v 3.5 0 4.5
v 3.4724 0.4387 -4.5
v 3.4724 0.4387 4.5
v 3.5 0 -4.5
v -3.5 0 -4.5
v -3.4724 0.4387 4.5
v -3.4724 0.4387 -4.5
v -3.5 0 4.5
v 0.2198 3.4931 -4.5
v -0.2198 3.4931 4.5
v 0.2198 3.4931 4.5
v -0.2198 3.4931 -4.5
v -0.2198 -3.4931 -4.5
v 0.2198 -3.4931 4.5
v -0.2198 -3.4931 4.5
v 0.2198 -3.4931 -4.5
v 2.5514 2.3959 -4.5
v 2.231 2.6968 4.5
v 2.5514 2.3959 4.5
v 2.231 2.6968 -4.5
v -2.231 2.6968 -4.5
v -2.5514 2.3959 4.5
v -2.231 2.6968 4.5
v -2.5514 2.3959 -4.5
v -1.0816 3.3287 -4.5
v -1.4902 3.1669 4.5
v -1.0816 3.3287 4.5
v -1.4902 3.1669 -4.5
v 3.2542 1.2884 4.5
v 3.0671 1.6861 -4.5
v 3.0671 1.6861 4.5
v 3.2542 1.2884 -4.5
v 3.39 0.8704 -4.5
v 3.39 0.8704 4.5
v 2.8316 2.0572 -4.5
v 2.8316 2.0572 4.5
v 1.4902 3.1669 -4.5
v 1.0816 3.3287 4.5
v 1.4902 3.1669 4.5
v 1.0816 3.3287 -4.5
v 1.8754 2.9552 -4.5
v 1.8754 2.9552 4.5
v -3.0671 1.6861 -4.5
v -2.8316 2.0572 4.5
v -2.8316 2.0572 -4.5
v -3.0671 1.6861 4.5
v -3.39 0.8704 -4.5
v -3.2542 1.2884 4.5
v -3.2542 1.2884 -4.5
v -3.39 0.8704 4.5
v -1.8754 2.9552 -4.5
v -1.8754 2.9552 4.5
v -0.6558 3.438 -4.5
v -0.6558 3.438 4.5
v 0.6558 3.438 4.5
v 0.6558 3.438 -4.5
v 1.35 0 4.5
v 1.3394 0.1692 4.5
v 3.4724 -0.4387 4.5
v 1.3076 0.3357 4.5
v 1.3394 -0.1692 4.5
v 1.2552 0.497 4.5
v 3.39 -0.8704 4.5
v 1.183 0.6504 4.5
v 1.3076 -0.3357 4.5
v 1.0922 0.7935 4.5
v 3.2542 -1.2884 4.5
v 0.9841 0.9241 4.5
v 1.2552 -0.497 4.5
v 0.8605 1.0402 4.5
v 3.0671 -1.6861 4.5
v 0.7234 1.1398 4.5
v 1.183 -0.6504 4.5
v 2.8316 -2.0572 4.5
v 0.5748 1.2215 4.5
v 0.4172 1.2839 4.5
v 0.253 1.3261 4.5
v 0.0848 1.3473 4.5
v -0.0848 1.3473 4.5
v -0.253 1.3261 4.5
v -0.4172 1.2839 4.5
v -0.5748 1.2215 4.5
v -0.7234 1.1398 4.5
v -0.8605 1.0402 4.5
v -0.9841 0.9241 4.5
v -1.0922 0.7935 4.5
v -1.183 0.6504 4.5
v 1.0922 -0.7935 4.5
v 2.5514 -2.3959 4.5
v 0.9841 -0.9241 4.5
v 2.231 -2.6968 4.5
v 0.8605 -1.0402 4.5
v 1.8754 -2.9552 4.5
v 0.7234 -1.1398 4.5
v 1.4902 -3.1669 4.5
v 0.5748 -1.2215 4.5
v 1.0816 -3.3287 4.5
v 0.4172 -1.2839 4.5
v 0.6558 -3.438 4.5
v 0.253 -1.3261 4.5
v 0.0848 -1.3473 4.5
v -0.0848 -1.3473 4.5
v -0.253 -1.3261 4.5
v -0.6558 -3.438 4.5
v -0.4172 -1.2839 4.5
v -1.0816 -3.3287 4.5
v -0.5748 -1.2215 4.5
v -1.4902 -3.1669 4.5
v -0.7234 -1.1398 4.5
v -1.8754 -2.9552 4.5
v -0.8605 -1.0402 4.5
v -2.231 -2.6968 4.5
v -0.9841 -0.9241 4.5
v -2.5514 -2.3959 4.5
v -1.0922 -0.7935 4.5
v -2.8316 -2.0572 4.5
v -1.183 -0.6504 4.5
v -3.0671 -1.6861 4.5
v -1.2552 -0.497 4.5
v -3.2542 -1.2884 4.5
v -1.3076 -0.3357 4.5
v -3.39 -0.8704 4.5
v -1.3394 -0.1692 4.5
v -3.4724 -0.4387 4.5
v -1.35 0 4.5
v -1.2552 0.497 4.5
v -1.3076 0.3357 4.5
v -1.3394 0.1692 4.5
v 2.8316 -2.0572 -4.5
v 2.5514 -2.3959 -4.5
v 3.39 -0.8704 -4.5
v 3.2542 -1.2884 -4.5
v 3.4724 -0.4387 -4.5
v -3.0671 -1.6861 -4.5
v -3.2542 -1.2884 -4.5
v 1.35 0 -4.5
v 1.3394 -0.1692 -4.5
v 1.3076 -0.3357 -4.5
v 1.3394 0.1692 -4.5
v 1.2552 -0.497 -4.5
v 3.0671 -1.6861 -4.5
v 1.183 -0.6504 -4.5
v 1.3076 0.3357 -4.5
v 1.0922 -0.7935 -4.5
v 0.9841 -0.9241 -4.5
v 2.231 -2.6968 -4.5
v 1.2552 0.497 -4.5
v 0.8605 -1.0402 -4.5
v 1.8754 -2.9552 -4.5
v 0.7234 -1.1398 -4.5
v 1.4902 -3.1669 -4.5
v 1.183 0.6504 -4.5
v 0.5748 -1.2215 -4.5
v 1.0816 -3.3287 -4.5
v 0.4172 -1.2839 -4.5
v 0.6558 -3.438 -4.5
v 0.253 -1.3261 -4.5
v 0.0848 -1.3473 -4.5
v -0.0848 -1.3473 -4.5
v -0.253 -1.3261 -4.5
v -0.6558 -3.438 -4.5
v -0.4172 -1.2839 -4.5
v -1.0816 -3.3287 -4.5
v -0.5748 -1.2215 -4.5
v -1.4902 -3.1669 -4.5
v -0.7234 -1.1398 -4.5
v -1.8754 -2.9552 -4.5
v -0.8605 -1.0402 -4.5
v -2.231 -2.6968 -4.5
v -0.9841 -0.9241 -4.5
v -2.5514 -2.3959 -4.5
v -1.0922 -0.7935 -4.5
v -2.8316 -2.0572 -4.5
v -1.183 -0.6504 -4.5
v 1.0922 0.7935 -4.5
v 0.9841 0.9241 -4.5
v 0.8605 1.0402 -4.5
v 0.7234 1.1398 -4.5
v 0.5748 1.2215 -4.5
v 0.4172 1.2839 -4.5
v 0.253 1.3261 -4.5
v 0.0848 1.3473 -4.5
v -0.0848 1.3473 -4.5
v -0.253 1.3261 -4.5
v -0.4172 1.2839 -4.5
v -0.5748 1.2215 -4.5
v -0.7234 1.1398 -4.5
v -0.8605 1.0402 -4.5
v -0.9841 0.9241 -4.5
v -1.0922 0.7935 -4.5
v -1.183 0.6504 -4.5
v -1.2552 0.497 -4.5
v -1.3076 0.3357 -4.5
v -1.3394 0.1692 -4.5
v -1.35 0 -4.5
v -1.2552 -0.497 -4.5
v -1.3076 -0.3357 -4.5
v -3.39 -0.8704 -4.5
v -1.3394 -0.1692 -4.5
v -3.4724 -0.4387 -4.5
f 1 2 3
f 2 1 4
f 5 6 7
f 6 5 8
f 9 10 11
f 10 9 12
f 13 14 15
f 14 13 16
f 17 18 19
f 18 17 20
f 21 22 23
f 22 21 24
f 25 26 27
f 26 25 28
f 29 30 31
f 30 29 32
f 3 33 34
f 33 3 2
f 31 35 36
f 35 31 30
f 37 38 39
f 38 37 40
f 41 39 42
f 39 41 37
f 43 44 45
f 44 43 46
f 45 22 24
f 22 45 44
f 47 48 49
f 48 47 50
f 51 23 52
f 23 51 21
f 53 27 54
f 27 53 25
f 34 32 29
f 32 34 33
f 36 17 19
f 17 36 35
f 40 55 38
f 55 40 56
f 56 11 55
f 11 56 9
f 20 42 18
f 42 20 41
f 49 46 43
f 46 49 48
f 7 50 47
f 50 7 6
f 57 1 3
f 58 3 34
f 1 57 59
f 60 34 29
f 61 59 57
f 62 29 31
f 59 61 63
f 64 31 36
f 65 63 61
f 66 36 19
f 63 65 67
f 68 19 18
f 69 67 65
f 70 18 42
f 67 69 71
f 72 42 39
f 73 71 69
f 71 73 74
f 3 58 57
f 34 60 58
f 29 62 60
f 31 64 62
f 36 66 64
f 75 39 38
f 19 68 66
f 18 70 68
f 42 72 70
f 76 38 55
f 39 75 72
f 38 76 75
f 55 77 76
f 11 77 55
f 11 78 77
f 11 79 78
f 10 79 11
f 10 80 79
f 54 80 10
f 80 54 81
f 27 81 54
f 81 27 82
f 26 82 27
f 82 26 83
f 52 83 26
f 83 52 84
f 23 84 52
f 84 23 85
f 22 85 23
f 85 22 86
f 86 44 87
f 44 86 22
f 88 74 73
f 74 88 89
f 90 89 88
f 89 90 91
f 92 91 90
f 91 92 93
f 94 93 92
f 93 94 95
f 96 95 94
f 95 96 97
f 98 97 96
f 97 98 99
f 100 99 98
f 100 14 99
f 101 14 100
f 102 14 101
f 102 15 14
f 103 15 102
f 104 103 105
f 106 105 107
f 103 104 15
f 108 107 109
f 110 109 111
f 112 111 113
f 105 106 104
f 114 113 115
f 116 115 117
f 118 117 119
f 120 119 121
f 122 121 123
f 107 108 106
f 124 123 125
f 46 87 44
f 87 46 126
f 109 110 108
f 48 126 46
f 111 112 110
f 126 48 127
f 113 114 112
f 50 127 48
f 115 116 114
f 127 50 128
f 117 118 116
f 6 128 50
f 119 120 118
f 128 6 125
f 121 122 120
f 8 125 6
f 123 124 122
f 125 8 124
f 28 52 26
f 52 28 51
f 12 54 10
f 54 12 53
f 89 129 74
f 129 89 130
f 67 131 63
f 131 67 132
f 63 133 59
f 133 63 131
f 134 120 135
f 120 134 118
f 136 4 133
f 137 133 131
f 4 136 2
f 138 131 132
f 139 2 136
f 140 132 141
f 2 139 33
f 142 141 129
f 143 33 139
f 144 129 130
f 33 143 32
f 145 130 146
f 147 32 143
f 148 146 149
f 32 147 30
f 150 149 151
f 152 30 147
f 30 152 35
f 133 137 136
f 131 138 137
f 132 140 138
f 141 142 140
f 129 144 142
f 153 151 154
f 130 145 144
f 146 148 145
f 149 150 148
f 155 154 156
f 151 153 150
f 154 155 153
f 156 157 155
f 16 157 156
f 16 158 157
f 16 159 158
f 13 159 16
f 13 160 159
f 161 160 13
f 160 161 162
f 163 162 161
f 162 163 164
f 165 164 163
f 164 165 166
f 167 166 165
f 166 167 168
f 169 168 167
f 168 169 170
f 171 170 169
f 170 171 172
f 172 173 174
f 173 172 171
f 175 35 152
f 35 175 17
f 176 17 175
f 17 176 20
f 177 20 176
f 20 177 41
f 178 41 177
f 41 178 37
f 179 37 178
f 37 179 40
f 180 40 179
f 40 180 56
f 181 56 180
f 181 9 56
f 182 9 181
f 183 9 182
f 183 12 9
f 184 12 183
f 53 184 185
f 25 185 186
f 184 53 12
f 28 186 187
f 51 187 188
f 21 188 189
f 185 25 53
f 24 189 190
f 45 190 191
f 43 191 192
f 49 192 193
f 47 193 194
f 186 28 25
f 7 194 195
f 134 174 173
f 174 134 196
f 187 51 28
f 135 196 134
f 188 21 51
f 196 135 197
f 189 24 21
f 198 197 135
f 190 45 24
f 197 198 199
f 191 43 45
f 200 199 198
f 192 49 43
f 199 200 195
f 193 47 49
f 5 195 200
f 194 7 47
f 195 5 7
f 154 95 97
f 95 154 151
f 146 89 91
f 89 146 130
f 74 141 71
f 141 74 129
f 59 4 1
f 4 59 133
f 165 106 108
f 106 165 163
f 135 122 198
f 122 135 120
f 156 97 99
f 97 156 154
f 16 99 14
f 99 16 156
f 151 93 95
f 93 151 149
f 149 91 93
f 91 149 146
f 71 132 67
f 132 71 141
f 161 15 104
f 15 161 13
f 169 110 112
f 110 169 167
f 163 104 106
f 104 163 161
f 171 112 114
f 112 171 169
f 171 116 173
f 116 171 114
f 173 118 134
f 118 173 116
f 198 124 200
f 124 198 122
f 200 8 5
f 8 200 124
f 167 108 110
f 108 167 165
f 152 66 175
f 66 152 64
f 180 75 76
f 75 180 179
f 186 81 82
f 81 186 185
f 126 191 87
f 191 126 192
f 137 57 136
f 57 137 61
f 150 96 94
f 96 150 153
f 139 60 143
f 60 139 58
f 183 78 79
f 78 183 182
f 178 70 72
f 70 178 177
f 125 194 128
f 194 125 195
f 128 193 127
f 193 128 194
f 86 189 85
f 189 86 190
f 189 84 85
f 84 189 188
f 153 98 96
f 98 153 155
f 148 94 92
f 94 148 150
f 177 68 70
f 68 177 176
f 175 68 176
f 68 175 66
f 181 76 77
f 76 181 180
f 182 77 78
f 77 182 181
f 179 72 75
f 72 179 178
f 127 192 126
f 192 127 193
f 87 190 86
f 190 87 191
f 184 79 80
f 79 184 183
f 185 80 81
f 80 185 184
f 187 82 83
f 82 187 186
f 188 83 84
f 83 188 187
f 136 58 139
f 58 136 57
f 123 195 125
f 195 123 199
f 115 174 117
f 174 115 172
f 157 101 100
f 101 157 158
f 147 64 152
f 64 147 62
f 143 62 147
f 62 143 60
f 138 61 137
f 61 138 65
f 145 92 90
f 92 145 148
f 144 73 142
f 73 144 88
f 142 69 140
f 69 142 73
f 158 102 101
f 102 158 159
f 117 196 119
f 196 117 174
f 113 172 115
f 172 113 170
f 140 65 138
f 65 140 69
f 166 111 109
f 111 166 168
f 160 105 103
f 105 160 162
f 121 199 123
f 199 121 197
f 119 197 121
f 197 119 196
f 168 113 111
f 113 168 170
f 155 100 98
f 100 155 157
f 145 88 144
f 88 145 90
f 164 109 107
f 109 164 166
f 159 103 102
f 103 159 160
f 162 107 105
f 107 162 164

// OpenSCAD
$fn = 50;


difference() {
	union() {
		translate(v = [0, 0, -4.5000000000]) {
			cylinder(h = 9, r = 3.5000000000);
		}
	}
	union() {
		translate(v = [0, 0, -100.0000000000]) {
			cylinder(h = 200, r = 1.3500000000);
		}
	}
}
